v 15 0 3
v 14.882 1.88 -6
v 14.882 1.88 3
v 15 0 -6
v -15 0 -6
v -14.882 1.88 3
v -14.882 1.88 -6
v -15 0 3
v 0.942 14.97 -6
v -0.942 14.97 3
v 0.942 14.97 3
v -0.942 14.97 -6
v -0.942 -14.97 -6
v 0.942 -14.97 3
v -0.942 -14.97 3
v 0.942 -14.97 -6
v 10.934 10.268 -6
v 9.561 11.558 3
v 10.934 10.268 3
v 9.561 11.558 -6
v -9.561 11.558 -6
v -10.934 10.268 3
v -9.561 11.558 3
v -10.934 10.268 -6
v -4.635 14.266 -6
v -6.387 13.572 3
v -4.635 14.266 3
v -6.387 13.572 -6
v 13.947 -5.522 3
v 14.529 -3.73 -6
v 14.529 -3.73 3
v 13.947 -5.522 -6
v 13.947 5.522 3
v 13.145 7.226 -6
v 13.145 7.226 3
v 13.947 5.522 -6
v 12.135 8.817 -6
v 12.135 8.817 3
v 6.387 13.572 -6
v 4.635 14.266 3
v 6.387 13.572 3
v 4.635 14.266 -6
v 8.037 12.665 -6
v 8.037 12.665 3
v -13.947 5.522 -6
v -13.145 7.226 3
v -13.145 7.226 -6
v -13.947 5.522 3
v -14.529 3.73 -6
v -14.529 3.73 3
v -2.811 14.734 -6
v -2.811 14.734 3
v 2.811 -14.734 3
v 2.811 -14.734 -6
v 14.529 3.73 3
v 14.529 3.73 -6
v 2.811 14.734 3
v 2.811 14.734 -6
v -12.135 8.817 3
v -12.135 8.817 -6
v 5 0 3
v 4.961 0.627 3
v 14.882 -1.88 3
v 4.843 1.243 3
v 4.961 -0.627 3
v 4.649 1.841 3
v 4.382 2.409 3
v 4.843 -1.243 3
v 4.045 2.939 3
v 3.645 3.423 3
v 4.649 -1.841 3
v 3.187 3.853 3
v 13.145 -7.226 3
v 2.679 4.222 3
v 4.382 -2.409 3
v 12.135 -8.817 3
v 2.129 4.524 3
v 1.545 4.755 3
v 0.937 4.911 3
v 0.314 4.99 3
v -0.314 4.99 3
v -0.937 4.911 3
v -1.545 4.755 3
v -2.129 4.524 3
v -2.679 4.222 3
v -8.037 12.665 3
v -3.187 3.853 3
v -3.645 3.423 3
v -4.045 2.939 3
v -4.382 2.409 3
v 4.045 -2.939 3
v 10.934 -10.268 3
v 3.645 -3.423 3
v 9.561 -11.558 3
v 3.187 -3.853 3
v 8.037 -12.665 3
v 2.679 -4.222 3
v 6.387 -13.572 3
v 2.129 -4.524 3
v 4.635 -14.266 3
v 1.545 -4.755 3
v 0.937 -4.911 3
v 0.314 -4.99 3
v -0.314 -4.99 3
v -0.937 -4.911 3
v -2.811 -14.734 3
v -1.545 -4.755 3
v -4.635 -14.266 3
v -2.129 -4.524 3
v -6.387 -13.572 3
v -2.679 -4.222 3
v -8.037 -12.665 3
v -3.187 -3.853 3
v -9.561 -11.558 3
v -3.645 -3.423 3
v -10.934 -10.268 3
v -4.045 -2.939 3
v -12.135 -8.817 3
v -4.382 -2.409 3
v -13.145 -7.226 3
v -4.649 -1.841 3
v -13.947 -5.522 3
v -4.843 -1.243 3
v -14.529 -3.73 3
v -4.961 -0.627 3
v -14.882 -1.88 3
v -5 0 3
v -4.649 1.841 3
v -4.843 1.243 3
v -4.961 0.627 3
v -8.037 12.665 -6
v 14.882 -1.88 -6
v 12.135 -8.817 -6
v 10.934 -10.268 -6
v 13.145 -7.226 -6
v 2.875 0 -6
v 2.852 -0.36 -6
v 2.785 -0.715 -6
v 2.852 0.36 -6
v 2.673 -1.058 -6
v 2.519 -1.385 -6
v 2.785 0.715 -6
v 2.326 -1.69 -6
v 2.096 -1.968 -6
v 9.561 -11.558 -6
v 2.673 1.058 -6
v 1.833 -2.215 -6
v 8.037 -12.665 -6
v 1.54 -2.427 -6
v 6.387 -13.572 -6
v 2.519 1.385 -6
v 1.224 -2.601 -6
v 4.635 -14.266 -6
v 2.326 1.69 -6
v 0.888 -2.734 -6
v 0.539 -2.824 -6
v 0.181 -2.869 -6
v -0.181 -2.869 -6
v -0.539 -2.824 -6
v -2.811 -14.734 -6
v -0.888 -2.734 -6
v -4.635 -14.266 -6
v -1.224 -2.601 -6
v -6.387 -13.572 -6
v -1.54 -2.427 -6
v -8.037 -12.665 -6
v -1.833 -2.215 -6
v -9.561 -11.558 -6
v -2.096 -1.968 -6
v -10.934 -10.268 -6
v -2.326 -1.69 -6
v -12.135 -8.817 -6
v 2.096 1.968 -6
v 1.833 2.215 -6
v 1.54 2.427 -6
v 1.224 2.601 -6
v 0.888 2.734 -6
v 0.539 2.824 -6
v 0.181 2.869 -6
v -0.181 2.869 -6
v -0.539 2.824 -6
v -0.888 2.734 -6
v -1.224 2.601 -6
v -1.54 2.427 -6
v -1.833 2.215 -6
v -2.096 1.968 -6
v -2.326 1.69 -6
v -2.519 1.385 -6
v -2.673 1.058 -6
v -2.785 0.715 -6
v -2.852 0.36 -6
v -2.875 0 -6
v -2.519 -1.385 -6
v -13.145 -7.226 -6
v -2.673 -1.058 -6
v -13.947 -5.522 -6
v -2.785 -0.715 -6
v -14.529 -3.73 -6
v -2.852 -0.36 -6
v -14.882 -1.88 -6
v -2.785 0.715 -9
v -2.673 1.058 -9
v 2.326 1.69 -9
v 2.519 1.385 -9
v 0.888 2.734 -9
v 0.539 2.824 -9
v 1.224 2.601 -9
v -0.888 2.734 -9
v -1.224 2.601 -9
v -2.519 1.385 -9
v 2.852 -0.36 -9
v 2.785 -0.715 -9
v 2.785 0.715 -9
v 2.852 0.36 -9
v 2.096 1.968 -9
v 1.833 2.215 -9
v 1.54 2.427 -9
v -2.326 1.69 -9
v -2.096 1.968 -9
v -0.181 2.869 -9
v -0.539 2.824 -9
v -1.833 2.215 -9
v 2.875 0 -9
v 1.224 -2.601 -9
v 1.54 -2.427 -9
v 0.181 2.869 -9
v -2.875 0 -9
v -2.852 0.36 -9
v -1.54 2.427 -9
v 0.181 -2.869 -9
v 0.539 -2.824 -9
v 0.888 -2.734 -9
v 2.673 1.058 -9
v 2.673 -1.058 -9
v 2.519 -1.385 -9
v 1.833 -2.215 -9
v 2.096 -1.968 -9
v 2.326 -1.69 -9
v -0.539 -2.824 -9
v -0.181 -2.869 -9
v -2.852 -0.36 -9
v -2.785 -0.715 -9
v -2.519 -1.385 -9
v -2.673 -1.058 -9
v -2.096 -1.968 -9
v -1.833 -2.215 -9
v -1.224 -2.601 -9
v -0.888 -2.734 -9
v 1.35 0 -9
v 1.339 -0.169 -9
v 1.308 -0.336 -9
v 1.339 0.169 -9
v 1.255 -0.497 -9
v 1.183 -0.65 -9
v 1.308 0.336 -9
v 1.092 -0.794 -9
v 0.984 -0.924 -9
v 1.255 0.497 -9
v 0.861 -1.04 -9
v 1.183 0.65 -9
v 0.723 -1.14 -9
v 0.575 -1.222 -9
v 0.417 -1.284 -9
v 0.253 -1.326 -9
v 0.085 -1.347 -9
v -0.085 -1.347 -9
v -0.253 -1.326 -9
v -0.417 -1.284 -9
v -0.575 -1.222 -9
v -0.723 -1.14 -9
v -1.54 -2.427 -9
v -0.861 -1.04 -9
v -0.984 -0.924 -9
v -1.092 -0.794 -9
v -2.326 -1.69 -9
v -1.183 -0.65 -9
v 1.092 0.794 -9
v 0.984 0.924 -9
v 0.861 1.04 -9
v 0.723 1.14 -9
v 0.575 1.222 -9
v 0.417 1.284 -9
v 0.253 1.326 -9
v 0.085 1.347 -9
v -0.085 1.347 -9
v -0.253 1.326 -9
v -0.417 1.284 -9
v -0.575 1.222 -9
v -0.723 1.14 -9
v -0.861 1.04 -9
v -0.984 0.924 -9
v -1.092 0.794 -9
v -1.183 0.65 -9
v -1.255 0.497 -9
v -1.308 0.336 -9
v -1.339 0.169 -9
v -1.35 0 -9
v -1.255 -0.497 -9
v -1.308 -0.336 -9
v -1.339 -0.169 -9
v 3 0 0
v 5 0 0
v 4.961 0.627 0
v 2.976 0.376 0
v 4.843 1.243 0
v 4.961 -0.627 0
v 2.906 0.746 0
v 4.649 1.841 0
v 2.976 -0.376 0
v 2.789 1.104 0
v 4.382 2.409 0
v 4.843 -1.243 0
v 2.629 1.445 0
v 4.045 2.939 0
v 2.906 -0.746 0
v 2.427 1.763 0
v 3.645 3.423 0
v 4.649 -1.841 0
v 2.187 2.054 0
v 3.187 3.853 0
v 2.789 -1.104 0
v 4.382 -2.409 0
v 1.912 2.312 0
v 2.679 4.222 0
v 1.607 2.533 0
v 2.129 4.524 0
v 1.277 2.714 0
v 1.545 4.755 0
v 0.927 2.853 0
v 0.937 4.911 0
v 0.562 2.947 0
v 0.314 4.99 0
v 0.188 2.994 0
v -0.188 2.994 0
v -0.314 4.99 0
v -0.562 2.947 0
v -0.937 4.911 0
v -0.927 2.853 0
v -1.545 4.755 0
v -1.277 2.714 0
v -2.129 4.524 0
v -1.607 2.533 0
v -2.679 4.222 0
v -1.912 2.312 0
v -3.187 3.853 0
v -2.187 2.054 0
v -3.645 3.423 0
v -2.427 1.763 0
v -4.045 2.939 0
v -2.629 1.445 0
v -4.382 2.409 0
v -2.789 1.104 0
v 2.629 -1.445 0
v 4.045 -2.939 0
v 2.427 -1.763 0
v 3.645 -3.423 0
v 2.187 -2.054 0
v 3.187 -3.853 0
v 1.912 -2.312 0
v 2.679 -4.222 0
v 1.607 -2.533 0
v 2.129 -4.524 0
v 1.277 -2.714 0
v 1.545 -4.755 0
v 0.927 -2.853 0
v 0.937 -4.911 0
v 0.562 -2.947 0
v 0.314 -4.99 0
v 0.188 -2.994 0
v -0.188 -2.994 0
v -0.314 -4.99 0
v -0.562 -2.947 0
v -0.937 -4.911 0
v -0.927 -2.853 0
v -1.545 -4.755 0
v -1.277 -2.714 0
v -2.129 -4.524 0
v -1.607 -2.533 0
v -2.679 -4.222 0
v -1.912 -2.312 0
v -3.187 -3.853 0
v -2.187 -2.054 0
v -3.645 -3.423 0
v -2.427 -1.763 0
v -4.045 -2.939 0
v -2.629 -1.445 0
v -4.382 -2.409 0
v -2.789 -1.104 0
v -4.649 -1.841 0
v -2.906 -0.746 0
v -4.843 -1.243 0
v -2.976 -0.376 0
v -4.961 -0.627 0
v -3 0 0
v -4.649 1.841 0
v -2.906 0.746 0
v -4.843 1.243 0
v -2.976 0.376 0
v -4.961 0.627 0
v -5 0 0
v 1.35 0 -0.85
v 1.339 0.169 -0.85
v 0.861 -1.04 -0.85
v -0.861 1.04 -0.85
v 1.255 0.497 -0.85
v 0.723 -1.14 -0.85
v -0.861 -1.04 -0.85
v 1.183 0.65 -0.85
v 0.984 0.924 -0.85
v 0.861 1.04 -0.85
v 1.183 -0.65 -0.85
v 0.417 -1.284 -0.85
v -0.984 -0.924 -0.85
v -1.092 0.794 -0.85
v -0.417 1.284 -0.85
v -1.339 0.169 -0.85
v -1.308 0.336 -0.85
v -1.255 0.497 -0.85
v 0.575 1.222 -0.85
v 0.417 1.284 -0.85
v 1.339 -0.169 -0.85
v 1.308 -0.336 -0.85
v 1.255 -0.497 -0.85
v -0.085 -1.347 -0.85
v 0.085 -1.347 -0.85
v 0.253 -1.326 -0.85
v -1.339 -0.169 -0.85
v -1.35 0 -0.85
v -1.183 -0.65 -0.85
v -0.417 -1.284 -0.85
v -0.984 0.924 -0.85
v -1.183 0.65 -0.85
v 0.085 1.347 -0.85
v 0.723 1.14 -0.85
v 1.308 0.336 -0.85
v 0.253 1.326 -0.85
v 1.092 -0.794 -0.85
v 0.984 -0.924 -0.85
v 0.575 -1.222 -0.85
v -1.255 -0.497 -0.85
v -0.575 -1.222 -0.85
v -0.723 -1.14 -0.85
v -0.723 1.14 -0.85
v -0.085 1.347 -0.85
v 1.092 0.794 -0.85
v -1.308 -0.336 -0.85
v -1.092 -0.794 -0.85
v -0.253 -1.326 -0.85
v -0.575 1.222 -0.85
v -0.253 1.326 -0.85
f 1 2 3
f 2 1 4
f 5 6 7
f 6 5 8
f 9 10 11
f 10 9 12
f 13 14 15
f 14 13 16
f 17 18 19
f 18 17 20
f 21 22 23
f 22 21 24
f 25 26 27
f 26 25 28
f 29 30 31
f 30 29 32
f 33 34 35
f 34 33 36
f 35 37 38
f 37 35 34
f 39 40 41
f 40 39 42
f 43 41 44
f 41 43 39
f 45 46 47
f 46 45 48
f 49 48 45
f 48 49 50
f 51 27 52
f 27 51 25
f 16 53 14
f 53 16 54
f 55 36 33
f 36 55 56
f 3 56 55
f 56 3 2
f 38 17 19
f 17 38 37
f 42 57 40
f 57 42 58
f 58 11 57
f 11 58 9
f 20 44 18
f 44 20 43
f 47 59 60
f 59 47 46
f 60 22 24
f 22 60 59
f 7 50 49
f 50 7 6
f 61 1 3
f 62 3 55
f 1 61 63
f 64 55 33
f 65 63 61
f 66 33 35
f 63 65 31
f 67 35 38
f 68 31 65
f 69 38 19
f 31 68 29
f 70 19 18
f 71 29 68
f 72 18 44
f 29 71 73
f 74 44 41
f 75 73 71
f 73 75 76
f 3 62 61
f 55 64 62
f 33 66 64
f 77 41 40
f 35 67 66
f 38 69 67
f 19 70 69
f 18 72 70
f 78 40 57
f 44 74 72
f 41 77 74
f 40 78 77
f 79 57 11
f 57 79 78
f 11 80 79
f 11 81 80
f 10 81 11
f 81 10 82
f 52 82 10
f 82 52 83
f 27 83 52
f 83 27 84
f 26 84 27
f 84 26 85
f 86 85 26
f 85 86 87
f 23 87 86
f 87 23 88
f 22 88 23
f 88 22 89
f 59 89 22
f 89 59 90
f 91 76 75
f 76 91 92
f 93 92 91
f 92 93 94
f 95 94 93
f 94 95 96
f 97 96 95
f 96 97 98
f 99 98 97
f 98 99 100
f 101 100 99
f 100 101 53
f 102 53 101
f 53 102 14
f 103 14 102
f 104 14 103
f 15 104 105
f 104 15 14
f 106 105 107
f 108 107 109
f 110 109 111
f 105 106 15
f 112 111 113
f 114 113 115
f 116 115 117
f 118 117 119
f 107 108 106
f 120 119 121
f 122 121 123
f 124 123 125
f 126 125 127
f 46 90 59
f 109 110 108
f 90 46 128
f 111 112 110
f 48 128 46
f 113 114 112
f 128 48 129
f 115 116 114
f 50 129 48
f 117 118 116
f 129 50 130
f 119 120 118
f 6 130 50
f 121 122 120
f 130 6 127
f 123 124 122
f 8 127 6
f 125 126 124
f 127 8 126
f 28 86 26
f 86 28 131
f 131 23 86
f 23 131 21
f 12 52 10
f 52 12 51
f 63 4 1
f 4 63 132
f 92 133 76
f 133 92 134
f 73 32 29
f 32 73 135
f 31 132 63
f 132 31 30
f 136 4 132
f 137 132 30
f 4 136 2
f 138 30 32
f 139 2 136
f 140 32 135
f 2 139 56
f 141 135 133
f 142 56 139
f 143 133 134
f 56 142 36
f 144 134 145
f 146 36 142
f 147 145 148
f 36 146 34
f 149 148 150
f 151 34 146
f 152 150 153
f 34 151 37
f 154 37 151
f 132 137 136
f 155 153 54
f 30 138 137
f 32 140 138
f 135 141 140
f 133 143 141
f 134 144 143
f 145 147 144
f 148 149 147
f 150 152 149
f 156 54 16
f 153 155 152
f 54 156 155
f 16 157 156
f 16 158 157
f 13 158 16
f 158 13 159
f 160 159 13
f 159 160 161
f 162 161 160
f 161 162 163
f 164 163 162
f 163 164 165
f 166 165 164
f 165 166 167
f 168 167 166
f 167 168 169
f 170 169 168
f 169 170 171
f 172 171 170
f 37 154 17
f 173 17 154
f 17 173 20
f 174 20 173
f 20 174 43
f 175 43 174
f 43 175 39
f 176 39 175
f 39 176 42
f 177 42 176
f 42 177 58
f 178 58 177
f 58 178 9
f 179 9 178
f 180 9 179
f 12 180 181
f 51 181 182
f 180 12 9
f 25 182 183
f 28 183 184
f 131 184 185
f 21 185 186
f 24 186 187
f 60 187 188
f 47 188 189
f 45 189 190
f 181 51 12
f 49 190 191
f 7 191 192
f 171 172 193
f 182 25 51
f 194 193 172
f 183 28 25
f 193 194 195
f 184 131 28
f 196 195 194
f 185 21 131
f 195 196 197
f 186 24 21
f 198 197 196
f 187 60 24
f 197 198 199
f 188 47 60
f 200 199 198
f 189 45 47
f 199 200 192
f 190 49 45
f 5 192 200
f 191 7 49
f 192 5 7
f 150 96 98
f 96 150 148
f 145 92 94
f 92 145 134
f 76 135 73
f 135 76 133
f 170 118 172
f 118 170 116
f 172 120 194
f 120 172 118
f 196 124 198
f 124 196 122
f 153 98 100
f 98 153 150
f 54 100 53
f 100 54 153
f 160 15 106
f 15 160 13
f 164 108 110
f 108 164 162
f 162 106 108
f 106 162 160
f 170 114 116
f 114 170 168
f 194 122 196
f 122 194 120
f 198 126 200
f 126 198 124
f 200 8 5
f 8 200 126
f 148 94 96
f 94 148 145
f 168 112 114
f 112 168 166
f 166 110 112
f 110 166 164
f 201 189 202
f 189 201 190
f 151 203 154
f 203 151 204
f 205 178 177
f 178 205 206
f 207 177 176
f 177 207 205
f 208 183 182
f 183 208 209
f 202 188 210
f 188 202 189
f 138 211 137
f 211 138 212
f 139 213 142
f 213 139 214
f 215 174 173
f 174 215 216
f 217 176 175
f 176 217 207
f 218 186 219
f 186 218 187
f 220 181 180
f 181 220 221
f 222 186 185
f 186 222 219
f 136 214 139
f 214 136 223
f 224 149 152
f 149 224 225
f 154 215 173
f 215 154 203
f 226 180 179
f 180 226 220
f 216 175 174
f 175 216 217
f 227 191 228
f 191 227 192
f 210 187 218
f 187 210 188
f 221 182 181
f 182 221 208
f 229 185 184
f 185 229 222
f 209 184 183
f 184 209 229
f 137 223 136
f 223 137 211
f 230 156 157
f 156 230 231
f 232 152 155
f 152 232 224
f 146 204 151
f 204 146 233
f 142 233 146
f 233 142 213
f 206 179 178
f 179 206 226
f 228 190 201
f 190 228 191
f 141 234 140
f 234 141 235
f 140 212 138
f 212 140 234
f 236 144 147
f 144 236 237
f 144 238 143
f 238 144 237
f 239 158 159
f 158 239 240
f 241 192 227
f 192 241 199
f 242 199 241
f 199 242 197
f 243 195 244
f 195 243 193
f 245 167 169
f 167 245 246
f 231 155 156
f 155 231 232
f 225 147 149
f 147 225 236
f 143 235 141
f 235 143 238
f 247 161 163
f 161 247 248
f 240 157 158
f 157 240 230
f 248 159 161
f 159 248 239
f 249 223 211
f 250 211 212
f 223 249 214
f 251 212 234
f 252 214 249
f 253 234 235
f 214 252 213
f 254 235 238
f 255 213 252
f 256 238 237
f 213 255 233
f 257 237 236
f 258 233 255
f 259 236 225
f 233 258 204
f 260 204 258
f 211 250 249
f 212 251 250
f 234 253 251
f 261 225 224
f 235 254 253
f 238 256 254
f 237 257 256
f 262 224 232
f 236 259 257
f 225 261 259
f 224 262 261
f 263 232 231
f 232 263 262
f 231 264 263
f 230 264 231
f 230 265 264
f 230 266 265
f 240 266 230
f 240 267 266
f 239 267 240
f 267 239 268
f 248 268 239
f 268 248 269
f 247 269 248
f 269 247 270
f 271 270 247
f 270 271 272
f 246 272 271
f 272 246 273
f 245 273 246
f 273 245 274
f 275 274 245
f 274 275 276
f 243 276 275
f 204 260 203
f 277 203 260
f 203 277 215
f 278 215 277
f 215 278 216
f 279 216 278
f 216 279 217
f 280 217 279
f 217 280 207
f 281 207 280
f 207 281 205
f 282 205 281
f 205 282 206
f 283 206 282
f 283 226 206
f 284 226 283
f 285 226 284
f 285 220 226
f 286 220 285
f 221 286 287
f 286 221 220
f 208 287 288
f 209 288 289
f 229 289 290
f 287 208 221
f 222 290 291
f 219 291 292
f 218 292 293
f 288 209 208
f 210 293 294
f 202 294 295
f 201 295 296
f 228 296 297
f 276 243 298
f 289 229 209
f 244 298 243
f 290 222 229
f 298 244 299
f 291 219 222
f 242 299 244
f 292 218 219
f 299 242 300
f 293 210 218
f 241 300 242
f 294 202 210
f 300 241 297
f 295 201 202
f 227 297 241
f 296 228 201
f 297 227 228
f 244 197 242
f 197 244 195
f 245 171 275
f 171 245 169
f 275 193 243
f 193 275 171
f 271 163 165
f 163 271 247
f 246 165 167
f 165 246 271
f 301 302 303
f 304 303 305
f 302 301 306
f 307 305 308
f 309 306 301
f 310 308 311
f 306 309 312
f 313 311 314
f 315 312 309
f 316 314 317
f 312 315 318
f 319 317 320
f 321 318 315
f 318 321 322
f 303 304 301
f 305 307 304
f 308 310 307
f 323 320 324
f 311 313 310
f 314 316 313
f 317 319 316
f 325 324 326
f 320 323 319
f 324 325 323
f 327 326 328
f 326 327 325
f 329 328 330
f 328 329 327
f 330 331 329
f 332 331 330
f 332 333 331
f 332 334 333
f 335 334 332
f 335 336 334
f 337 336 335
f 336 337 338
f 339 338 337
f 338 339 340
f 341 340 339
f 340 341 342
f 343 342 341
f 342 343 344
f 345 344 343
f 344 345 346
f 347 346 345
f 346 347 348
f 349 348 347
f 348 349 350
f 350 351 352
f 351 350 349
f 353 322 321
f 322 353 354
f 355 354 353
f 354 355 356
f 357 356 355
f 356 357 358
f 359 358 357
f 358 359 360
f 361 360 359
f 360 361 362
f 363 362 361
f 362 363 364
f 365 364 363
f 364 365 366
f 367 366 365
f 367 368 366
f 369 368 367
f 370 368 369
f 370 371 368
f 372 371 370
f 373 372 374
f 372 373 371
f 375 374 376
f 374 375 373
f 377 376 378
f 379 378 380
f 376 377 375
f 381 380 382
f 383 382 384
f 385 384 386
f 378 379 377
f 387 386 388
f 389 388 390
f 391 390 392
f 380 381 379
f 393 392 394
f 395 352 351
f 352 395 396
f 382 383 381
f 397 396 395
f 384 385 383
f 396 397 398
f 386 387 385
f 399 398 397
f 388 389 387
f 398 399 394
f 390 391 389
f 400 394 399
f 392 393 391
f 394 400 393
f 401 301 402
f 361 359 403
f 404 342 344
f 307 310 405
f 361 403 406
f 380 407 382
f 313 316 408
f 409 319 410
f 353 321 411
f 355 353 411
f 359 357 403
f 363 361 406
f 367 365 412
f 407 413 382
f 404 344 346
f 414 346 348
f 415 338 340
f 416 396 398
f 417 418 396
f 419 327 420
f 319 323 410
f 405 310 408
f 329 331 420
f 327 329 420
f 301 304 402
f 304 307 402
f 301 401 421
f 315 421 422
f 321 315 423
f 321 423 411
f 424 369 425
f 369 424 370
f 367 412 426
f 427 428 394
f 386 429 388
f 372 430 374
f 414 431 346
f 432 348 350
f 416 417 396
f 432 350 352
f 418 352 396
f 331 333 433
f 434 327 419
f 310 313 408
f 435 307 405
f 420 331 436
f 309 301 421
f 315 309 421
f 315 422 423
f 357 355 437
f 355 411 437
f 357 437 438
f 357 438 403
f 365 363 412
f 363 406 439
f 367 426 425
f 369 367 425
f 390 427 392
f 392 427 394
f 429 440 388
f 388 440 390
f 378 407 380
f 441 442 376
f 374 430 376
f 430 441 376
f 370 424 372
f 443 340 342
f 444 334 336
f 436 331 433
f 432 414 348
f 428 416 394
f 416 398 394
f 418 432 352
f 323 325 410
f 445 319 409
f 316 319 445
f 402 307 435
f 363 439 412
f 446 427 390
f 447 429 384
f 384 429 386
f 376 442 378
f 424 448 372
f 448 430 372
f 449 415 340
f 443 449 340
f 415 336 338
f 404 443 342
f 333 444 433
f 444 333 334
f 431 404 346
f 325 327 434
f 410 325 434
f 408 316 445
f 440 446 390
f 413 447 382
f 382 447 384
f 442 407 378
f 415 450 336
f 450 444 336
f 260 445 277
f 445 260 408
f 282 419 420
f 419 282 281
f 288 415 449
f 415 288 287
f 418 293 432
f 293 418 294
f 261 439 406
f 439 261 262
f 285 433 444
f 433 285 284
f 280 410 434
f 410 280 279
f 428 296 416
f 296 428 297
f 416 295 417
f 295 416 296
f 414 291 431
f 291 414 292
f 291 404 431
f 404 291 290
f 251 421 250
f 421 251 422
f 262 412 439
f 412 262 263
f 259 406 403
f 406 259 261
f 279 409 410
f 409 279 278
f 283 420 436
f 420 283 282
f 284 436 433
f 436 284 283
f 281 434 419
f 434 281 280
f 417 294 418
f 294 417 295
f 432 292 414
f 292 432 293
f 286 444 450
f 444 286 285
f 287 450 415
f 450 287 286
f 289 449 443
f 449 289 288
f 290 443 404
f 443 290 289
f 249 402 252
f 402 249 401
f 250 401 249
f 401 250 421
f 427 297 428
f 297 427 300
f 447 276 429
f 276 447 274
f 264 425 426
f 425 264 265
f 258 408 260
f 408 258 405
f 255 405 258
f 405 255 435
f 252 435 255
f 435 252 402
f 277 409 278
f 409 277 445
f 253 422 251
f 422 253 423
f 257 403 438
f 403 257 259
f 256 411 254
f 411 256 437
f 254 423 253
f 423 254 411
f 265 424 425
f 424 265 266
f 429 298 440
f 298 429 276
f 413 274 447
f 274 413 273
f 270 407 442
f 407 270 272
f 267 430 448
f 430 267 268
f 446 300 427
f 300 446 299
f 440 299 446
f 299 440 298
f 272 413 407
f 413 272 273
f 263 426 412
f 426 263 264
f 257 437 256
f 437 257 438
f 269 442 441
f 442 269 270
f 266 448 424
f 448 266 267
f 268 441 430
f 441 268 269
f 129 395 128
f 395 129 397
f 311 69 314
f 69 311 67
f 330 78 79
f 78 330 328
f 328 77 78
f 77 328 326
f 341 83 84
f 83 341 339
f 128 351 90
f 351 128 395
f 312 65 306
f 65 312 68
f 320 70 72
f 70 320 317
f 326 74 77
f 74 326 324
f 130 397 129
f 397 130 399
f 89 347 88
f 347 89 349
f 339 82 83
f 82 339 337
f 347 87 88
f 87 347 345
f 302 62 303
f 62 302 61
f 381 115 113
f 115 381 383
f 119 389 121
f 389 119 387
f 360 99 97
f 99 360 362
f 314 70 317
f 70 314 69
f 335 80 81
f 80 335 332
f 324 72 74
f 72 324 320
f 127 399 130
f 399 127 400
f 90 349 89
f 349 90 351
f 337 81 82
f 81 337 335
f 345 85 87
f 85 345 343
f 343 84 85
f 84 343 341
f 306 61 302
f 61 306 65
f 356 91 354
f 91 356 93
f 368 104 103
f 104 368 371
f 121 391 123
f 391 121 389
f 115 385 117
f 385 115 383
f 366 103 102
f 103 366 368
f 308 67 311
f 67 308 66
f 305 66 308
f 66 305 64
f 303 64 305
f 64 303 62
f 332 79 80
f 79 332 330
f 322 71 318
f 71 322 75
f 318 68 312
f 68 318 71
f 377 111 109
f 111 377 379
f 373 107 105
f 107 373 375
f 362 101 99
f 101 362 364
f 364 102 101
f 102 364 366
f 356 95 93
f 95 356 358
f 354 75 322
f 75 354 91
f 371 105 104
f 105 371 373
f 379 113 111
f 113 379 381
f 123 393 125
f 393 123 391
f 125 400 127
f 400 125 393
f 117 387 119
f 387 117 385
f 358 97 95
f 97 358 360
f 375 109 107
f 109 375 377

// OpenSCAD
$fn = 50;


difference() {
	union() {
		translate(v = [0, 0, -6.0000000000]) {
			cylinder(h = 9, r = 15.0000000000);
		}
		#translate(v = [0, 0, -9.0000000000]) {
			cylinder(h = 9, r = 2.8750000000);
		}
	}
	union() {
		translate(v = [0, 0, 0]) {
			rotate(a = [0, 0, 0]) {
				difference() {
					union() {
						translate(v = [0, 0, -9.0000000000]) {
							cylinder(h = 9, r = 1.0000000000);
						}
						translate(v = [0, 0, -0.8500000000]) {
							cylinder(h = 0.8500000000, r1 = 1.3500000000, r2 = 3.0000000000);
						}
						translate(v = [0, 0, -9.0000000000]) {
							cylinder(h = 9, r = 1.3500000000);
						}
						translate(v = [0, 0, -9.0000000000]) {
							cylinder(h = 9, r = 1.0000000000);
						}
					}
					union();
				}
			}
		}
		#cylinder(h = 3, r = 5.0000000000);
	}
}
